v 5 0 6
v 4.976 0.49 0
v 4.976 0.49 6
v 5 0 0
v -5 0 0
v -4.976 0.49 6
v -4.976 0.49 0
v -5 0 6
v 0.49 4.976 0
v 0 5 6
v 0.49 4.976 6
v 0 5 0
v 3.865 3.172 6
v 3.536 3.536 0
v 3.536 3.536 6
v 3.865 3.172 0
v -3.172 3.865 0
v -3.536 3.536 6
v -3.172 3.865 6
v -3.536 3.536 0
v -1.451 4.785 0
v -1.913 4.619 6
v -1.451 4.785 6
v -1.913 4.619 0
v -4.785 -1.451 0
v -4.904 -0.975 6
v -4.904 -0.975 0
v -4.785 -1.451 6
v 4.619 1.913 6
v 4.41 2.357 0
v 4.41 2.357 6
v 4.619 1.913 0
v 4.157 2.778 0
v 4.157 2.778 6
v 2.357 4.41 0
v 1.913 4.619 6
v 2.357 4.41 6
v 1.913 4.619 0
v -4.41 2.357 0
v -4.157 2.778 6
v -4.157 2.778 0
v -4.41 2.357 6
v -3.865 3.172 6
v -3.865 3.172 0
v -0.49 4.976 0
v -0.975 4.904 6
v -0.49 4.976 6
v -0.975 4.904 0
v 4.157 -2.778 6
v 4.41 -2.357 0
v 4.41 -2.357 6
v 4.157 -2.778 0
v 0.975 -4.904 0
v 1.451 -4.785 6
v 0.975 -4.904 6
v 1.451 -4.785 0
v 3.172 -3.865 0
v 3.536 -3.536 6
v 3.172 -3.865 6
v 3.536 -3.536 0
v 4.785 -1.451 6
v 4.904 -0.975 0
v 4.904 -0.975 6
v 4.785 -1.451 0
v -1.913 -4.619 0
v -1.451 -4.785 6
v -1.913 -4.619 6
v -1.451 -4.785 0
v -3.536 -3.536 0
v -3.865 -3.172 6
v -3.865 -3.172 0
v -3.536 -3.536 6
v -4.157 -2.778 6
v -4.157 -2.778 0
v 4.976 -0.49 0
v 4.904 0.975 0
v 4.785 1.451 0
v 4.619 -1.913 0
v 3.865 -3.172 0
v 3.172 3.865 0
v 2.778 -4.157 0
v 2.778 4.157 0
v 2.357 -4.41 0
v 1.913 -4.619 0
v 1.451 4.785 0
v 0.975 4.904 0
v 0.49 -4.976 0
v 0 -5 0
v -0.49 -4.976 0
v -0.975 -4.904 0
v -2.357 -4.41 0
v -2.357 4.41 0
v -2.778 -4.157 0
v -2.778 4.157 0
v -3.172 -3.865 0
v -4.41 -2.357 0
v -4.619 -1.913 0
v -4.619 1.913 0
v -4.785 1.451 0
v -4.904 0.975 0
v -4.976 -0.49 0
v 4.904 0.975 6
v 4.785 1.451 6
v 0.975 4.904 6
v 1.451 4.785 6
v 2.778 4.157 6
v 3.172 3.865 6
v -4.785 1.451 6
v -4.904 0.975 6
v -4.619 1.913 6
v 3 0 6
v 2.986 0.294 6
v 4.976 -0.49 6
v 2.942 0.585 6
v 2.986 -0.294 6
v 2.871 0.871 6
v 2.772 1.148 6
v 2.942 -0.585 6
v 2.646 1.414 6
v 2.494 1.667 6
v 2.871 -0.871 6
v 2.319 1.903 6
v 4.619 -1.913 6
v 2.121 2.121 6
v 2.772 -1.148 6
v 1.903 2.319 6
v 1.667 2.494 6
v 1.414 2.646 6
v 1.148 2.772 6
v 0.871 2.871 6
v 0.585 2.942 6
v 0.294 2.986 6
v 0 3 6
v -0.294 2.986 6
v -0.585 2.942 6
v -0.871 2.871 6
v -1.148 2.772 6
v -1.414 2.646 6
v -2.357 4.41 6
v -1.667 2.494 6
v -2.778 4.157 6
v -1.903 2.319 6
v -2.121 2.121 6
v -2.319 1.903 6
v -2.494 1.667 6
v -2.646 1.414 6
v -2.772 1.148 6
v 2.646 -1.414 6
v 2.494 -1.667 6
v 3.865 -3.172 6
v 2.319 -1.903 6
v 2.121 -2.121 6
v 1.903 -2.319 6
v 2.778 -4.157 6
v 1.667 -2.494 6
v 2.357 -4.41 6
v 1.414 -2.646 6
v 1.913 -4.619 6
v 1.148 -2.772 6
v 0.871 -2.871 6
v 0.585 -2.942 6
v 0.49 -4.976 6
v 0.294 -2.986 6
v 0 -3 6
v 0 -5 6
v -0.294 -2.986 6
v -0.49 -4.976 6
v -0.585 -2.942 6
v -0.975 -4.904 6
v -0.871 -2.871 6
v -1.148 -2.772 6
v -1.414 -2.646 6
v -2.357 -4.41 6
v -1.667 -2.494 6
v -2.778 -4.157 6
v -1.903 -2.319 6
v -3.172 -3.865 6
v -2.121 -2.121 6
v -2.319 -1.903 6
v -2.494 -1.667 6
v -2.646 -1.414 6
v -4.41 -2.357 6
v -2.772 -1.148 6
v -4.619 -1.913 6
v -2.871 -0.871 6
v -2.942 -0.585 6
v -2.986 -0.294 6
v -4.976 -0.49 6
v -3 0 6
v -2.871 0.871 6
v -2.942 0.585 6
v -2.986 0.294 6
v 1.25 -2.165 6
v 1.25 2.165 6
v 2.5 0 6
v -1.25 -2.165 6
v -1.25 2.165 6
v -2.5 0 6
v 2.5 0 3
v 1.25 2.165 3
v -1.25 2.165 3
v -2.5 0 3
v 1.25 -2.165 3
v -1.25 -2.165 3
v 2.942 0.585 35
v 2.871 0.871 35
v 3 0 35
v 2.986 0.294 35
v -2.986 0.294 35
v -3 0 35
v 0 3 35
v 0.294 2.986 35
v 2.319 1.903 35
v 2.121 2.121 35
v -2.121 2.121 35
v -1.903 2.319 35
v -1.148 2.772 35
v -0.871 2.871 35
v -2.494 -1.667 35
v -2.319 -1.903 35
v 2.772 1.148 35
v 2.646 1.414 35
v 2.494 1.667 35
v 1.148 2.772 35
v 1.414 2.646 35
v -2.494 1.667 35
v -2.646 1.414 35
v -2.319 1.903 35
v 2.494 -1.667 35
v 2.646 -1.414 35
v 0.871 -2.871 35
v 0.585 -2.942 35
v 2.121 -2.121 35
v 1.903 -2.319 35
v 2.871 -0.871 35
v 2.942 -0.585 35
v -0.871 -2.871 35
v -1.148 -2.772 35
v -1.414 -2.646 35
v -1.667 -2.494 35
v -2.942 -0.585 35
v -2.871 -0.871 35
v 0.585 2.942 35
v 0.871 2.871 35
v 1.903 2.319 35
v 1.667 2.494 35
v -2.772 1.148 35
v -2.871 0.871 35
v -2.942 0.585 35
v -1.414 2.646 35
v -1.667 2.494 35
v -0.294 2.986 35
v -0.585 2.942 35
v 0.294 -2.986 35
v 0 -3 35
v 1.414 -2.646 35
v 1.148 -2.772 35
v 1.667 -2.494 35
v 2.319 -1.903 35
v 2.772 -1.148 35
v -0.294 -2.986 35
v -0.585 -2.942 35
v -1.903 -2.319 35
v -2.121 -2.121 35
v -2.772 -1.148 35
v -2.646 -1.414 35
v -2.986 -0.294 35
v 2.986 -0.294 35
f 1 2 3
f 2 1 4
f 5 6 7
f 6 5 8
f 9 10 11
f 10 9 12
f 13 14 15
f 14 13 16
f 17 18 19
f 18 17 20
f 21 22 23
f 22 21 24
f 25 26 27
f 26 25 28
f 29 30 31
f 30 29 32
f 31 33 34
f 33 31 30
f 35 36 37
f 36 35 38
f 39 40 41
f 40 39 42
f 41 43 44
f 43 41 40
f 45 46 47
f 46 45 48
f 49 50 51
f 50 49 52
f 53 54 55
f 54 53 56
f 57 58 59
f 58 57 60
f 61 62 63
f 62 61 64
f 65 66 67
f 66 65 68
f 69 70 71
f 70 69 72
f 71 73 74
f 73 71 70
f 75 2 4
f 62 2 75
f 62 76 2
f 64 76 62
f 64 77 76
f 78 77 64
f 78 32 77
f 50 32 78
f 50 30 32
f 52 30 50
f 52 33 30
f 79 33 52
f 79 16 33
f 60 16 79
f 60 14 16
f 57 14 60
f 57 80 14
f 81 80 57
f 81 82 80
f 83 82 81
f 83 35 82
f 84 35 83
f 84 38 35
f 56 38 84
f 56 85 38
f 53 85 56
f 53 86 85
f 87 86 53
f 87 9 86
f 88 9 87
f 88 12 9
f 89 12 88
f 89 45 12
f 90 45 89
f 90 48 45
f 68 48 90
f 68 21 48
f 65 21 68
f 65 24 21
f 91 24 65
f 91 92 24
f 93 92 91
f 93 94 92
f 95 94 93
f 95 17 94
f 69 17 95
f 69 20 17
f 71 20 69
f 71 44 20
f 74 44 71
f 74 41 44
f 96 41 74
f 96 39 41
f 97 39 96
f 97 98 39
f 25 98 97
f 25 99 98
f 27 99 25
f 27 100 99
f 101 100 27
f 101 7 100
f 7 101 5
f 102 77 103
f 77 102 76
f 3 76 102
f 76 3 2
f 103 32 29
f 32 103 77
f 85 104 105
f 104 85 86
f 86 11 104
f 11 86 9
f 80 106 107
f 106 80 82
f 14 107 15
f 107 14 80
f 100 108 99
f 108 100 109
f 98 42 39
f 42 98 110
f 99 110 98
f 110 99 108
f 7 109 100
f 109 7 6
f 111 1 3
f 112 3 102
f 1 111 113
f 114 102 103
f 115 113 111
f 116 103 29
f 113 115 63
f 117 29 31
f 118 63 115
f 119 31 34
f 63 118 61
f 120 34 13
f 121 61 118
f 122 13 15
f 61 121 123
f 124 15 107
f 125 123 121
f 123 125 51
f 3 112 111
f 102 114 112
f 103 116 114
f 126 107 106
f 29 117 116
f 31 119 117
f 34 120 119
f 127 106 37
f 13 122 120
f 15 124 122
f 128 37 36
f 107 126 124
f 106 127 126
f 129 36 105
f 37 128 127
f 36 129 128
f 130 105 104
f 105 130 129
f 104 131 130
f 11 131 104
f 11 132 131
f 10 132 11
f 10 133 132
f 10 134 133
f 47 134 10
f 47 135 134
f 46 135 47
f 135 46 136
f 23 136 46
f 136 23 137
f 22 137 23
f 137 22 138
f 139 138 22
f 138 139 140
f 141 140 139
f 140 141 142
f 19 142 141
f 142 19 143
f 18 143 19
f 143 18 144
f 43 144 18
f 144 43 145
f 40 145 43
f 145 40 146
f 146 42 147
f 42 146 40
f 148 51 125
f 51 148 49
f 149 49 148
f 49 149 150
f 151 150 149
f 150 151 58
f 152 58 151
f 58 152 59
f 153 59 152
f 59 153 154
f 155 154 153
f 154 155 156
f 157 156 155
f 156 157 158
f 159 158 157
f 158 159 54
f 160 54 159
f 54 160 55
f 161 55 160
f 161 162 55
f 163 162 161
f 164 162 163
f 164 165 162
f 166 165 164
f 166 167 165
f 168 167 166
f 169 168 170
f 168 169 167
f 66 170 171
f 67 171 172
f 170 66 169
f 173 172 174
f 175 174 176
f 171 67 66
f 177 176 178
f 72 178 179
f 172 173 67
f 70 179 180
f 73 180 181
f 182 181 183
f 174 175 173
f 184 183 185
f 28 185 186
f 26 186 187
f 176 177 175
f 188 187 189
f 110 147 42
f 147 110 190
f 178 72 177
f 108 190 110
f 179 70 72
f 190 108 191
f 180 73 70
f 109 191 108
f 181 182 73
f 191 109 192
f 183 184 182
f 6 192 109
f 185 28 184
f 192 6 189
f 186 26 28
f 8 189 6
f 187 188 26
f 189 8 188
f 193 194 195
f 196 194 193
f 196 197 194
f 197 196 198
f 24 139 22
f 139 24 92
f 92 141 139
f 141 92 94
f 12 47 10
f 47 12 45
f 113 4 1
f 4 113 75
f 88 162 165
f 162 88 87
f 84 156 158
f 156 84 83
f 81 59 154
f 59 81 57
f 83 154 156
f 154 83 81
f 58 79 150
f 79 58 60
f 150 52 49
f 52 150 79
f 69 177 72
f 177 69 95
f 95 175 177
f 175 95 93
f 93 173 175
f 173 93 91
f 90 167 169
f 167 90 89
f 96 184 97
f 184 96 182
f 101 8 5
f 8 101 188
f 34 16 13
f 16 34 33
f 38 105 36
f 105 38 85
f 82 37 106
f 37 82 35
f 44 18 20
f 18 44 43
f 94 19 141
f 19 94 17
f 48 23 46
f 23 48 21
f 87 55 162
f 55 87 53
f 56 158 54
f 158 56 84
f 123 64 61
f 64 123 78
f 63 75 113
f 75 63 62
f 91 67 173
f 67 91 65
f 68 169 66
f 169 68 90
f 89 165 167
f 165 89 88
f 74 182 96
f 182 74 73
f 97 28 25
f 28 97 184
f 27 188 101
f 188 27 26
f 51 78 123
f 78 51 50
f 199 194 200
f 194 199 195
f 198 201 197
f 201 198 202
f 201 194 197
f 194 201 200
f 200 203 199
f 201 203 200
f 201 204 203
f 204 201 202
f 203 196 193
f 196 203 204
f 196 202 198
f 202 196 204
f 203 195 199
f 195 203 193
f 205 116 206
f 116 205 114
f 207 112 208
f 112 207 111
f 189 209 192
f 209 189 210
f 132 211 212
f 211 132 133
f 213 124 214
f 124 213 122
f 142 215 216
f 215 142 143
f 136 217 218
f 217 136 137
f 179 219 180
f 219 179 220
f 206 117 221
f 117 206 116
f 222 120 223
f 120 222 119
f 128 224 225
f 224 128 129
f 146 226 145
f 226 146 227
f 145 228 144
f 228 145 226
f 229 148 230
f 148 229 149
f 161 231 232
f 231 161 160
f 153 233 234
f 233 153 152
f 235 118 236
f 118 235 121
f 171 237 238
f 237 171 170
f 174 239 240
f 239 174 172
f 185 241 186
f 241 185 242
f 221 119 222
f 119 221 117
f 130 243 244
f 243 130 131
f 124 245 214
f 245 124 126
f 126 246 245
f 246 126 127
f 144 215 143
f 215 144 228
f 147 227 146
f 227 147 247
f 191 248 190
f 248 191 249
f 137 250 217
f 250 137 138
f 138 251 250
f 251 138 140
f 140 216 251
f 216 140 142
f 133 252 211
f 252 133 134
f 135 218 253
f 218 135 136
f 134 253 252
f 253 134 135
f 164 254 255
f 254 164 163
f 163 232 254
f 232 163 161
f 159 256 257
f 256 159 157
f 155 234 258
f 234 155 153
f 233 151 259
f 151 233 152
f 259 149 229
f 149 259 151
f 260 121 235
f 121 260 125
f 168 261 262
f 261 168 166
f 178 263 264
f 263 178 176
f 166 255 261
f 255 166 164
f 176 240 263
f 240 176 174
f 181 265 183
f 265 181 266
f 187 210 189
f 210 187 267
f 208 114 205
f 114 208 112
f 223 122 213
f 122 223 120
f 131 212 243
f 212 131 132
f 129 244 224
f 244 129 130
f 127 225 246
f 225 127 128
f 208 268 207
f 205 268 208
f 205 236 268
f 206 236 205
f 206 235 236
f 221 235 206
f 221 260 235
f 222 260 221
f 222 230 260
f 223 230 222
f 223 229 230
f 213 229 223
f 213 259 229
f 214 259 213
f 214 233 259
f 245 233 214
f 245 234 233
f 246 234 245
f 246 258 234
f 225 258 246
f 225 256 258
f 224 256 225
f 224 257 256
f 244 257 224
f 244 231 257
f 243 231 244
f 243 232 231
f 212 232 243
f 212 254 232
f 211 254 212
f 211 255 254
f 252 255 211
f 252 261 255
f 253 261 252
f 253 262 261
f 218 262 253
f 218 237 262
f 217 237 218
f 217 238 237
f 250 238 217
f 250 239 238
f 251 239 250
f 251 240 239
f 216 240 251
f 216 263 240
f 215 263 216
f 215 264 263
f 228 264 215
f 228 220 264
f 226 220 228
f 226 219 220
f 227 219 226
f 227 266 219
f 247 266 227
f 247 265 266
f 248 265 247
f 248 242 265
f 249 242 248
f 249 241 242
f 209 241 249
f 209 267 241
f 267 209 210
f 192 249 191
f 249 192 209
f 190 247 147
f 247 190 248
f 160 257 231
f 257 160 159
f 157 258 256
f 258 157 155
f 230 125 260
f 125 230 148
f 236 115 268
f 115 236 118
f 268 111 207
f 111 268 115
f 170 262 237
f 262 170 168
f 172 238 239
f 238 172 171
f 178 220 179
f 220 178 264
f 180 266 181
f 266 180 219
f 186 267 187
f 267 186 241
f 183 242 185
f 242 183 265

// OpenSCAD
// Parameters
bolt_length = 40;
bolt_radius = 3;
head_height = 6;
head_radius = 5;
hex_radius = 2.5;
hex_depth = 3;
tip_length = 5;

// Bolt shaft
module bolt_shaft() {
    cylinder(h = bolt_length - head_height - tip_length, r = bolt_radius, $fn = 64);
}

// Bolt head with hex socket
module bolt_head() {
    difference() {
        cylinder(h = head_height, r = head_radius, $fn = 64);
        // Recessed hex socket
        translate([0, 0, head_height - hex_depth])
            rotate([0, 0, 0])
                cylinder(h = hex_depth + 0.1, r = hex_radius, $fn = 6);
    }
}

// Conical tip
module bolt_tip() {
    translate([0, 0, -(tip_length)])
        cylinder(h = tip_length, r1 = bolt_radius, r2 = 0, $fn = 64);
}

// Full bolt
module bolt() {
    union() {
        bolt_head();
        translate([0, 0, head_height])
            bolt_shaft();
        translate([0, 0, bolt_length - tip_length])
            bolt_tip();
    }
}

// Render the bolt
bolt();

 
